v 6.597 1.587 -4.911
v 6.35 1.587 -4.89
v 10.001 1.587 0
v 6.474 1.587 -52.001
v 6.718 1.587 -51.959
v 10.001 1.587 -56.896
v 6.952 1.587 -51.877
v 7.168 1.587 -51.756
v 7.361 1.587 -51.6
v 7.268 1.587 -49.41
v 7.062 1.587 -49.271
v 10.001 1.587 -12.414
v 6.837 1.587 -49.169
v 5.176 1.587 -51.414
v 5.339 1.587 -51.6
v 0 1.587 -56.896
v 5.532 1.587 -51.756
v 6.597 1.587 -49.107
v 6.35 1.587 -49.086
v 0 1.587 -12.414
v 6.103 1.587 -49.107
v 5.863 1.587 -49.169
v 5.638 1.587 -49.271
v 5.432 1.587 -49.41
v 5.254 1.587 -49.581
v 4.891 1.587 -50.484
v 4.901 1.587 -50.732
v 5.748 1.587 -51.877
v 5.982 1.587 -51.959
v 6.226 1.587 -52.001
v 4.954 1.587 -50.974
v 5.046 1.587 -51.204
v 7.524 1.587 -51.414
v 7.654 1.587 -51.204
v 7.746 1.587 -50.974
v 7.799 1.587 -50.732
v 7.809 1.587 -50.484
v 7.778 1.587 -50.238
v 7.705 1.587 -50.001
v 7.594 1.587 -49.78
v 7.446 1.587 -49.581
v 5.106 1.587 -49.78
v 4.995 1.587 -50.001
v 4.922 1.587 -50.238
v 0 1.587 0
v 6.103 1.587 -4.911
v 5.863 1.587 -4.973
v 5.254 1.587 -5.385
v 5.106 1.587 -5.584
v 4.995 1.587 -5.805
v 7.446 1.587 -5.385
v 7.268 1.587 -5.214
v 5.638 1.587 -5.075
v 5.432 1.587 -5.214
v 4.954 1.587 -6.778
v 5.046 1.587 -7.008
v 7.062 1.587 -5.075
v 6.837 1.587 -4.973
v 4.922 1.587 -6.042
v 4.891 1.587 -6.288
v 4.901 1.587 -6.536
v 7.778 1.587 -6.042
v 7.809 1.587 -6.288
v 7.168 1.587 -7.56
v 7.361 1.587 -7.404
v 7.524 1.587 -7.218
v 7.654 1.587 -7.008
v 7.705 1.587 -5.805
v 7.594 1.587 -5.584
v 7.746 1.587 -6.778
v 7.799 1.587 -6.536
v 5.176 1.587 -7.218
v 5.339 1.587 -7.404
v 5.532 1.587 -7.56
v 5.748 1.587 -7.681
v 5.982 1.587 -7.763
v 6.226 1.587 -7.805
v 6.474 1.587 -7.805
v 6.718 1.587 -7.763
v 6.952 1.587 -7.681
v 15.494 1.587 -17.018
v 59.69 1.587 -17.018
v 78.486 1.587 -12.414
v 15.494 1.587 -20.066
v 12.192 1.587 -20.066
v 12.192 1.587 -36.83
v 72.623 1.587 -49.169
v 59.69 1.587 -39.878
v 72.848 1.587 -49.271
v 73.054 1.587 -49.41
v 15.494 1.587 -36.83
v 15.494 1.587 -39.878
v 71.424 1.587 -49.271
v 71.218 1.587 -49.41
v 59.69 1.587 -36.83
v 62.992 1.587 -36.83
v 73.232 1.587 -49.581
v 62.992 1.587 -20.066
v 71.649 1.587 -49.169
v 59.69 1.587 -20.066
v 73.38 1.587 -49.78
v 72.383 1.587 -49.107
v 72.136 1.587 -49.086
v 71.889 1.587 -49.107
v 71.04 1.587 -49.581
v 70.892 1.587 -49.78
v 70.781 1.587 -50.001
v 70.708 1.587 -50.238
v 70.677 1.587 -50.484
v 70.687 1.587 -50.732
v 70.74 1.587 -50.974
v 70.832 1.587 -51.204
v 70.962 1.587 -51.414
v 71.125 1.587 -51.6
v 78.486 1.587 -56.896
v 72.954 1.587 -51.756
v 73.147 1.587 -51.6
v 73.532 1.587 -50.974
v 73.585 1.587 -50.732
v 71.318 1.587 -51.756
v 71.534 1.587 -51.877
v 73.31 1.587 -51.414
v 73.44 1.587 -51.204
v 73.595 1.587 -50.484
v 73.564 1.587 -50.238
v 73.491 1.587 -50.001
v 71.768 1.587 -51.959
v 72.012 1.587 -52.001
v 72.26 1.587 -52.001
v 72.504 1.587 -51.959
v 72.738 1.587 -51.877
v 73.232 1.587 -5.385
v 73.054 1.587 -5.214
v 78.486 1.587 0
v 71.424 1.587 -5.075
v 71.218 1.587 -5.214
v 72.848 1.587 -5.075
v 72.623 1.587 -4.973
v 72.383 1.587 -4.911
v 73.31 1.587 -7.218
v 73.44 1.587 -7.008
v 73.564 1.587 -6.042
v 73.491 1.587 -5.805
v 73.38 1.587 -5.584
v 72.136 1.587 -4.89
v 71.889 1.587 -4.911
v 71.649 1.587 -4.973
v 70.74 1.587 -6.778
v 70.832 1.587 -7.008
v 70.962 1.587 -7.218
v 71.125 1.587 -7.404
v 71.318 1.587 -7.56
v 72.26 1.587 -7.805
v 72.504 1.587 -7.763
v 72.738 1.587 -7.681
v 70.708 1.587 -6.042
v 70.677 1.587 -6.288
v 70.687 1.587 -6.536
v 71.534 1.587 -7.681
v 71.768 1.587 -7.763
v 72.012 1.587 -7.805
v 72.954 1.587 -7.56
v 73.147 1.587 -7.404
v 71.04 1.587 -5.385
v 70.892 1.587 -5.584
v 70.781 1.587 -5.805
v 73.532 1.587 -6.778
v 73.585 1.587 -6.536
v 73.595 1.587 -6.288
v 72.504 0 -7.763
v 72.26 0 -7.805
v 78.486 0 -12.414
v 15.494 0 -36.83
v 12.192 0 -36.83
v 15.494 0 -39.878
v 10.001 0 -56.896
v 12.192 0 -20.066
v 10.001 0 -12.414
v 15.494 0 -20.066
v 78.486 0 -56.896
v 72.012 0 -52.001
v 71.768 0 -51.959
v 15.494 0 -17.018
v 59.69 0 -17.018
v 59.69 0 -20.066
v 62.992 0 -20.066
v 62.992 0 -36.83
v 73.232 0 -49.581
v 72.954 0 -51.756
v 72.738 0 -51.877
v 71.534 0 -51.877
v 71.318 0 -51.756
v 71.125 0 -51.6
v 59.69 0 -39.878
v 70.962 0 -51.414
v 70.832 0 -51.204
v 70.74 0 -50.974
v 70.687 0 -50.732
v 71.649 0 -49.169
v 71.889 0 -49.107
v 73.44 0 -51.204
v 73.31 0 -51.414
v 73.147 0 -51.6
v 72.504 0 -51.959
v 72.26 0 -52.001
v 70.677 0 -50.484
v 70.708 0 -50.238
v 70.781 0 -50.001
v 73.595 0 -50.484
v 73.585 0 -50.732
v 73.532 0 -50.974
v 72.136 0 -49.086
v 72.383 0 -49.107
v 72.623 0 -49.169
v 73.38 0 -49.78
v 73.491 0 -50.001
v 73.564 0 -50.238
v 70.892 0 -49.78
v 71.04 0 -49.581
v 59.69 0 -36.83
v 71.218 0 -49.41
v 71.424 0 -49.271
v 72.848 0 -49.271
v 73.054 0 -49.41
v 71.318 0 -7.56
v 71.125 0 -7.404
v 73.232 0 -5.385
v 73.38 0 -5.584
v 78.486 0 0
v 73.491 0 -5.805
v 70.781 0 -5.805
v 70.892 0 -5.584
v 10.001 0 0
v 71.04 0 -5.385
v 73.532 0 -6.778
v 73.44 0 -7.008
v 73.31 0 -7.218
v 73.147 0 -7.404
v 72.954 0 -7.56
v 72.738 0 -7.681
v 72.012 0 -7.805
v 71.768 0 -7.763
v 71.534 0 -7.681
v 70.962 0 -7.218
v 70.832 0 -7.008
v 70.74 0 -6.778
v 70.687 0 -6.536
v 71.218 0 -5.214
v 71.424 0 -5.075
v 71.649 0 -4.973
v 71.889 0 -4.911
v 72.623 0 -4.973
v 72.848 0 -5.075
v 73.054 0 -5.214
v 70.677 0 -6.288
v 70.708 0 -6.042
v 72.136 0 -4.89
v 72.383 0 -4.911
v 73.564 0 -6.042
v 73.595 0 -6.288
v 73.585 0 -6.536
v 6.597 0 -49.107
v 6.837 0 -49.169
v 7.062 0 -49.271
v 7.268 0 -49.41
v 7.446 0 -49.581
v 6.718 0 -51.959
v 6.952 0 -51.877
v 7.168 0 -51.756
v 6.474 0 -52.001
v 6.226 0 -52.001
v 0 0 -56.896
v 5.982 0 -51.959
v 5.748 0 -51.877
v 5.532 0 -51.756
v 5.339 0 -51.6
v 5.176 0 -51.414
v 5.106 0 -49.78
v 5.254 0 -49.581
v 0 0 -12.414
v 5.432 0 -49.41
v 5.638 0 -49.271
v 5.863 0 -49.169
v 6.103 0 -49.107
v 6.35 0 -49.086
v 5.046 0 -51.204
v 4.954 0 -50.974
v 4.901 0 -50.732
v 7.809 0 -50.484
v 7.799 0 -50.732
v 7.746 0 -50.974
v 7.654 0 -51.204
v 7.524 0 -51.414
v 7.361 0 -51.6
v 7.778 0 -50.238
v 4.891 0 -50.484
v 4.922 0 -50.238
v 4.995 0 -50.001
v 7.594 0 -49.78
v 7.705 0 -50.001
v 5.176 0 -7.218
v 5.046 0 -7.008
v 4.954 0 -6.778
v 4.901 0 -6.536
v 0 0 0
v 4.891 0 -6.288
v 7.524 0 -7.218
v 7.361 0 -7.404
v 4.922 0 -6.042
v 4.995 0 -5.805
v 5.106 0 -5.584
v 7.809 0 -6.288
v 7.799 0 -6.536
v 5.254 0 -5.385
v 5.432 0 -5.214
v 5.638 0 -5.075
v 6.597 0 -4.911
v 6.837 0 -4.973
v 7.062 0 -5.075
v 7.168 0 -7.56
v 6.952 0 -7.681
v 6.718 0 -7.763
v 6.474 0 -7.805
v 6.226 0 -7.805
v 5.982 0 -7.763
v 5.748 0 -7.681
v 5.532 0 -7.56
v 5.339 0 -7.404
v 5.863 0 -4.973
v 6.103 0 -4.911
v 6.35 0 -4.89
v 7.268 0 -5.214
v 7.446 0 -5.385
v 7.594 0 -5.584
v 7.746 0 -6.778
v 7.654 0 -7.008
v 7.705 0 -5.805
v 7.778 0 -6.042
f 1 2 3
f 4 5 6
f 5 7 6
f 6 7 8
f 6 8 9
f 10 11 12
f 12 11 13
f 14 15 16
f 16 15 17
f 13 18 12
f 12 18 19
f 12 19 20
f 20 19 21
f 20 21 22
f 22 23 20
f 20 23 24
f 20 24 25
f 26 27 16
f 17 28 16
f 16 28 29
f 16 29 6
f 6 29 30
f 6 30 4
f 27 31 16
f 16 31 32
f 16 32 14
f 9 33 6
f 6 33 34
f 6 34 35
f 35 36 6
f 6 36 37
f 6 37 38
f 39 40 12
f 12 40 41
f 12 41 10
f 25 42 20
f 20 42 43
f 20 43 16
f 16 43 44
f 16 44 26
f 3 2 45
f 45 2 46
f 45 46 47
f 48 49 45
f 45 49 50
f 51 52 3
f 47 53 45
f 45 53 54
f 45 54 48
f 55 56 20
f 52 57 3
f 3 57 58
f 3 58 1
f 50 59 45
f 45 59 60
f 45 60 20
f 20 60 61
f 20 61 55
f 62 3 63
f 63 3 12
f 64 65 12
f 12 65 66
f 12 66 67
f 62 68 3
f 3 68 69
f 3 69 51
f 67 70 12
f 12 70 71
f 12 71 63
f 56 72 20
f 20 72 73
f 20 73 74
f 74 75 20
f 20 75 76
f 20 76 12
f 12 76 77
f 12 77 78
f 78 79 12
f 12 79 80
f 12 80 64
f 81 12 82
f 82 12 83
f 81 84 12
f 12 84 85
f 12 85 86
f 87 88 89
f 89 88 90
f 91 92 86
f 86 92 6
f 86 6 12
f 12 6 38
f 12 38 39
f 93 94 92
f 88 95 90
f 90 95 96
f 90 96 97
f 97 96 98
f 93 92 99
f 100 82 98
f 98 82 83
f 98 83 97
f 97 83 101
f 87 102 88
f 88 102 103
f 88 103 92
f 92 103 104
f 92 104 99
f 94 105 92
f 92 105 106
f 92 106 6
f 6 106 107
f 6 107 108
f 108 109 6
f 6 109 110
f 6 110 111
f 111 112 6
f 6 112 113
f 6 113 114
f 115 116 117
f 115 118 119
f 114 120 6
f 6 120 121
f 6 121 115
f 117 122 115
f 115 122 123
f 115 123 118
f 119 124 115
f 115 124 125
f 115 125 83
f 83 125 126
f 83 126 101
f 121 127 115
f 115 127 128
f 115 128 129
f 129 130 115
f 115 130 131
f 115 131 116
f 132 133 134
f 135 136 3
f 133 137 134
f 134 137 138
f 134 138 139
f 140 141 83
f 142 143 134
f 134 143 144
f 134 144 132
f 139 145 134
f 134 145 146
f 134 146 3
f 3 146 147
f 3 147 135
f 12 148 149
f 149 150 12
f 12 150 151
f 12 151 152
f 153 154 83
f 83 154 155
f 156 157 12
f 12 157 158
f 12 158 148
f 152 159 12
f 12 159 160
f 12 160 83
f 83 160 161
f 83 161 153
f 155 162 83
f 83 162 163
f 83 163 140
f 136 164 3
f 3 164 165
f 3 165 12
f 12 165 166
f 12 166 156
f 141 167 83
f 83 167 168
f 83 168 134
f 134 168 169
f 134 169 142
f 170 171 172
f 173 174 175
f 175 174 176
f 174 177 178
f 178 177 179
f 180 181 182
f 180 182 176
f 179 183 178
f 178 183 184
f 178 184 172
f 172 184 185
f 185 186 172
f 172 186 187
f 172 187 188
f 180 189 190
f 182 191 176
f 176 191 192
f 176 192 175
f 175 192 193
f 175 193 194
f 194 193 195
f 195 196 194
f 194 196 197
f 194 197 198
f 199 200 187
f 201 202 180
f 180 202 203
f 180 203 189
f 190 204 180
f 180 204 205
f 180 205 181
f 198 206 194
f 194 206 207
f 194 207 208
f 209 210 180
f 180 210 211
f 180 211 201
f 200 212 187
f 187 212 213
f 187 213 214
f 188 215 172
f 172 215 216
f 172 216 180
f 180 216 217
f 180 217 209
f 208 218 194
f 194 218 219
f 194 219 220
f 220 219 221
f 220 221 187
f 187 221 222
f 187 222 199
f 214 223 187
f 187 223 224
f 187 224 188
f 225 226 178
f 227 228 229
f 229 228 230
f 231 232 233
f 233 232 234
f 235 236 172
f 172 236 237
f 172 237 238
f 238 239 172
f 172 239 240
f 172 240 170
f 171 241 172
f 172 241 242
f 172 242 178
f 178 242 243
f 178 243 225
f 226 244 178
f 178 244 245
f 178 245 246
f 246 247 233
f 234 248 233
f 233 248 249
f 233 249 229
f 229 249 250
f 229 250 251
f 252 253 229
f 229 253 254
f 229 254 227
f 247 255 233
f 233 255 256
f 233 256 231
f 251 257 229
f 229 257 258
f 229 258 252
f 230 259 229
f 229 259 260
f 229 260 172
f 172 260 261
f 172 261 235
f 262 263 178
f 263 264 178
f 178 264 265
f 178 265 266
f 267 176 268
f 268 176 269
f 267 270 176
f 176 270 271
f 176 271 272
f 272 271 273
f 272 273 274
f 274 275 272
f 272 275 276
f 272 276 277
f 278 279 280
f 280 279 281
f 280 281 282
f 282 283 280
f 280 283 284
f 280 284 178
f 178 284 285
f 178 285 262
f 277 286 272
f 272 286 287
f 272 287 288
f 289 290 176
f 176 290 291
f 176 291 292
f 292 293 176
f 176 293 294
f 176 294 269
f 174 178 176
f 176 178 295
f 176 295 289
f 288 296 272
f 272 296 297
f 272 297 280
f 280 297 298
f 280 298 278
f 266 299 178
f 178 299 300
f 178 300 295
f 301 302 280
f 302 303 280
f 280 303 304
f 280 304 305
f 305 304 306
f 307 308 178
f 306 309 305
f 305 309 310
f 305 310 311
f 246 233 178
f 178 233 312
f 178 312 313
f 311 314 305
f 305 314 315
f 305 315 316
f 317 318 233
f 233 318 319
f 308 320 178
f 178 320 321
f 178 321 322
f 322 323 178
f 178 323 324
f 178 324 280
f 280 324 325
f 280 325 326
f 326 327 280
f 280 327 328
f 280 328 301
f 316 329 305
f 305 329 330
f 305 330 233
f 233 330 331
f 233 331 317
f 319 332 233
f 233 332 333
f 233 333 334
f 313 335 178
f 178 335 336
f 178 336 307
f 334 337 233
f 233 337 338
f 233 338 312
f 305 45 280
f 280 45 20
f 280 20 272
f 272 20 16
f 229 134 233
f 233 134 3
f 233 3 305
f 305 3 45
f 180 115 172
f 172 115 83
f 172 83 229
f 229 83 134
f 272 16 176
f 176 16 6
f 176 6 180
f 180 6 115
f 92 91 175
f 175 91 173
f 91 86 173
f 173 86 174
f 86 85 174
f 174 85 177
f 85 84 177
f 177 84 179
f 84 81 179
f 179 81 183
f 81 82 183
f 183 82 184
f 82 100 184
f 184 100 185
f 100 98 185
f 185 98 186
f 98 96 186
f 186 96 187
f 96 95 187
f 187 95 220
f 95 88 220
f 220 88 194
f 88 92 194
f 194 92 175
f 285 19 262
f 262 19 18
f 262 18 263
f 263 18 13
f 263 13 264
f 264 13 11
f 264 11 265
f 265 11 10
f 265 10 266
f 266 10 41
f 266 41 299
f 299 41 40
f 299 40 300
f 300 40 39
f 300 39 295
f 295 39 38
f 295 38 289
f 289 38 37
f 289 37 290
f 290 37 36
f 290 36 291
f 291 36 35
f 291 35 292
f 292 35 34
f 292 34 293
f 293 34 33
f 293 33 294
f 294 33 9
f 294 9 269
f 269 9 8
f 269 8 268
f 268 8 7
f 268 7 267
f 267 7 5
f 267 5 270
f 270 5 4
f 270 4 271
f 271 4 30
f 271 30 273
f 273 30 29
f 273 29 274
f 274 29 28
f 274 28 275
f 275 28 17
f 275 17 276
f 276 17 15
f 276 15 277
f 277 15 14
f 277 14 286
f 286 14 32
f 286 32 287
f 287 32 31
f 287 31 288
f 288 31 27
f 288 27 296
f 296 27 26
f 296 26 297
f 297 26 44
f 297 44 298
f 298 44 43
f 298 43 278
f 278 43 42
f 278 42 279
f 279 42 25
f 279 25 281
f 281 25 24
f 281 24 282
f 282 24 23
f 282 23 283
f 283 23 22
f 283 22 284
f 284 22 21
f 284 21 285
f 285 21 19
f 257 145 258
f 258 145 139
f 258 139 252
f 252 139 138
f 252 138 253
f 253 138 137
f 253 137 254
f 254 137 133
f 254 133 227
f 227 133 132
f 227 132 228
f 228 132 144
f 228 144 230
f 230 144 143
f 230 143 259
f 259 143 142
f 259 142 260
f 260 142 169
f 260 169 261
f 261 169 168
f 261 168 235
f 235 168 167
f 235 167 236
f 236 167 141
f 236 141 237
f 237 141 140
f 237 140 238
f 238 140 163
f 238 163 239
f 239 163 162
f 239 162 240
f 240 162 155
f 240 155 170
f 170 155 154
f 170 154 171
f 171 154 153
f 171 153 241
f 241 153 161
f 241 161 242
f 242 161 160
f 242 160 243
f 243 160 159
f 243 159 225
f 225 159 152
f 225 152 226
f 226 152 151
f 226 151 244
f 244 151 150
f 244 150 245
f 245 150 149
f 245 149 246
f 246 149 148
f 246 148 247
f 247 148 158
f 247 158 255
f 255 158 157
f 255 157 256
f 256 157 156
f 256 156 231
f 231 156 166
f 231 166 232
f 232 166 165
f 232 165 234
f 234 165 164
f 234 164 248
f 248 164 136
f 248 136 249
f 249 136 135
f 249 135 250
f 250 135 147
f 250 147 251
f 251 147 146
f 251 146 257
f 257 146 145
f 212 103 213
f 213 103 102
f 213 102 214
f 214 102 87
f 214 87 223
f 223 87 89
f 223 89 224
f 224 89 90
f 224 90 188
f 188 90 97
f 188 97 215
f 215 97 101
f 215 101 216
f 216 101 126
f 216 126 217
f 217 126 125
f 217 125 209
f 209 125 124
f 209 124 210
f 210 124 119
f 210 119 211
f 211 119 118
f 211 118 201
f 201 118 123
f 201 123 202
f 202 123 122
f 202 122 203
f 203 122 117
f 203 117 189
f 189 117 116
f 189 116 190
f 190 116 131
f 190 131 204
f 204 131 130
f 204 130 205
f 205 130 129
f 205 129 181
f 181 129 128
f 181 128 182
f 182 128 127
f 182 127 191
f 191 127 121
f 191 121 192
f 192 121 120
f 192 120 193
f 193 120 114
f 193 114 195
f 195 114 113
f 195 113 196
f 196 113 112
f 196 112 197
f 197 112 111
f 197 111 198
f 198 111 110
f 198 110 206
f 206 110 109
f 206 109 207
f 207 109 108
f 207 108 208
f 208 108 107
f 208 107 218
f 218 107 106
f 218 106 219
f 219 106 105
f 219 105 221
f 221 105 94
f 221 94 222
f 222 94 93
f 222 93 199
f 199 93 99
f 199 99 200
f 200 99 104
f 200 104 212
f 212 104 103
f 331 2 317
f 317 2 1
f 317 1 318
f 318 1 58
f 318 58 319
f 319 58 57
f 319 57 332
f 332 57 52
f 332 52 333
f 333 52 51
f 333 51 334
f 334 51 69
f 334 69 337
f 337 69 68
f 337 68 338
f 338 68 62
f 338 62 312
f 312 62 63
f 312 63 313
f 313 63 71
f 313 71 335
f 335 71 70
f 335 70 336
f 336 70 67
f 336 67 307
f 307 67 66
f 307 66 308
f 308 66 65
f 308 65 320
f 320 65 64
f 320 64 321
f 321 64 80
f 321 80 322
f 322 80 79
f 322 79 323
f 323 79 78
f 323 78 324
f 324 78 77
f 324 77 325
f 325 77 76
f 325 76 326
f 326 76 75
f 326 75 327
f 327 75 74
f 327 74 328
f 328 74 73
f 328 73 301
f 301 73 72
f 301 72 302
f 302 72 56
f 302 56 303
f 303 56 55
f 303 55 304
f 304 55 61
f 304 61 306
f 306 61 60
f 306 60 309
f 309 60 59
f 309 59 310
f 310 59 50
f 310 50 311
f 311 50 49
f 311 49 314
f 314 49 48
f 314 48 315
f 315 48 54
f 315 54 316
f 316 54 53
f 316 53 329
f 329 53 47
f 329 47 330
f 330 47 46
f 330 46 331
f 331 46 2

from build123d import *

# Parameters (mm, degrees)
SKETCH2_W           = 78.486
SKETCH2_H           = 56.896
BOSS_EXTRUDE1_DEPTH = 1.5875
SKETCH3_R           = 1.4605
CUT_EXTRUDE1_DEPTH  = 2.5875


with BuildPart() as part:
    # Sketch2 → Boss-Extrude1 (new body)
    with BuildSketch(Plane(origin=(0, 0, 0), x_dir=(1, 0, 0), z_dir=(0, 1, 0))):
        with Locations((39.243, 28.448)):
            Rectangle(SKETCH2_W, SKETCH2_H)
        Polygon((15.494, 39.878), (59.69, 39.878), (59.69, 36.83), (62.992, 36.83), (62.992, 20.066), (59.69, 20.066), (59.69, 17.018), (15.494, 17.018), (15.494, 20.066), (12.192, 20.066), (12.192, 36.83), (15.494, 36.83), align=None, mode=Mode.SUBTRACT)
    extrude(amount=BOSS_EXTRUDE1_DEPTH)

    # Sketch3 → Cut-Extrude1 (cut, through all)
    with BuildSketch(Plane(origin=(0, 1.5875, 0), x_dir=(1, 0, 0), z_dir=(0, 1, 0))):
        with Locations((6.35, 50.546)):
            Circle(SKETCH3_R)
        with Locations((6.35, 6.35)):
            Circle(SKETCH3_R)
        with Locations((72.136, 50.546)):
            Circle(SKETCH3_R)
        with Locations((72.136, 6.35)):
            Circle(SKETCH3_R)
    extrude(amount=-CUT_EXTRUDE1_DEPTH, mode=Mode.SUBTRACT)


solid = part.part
